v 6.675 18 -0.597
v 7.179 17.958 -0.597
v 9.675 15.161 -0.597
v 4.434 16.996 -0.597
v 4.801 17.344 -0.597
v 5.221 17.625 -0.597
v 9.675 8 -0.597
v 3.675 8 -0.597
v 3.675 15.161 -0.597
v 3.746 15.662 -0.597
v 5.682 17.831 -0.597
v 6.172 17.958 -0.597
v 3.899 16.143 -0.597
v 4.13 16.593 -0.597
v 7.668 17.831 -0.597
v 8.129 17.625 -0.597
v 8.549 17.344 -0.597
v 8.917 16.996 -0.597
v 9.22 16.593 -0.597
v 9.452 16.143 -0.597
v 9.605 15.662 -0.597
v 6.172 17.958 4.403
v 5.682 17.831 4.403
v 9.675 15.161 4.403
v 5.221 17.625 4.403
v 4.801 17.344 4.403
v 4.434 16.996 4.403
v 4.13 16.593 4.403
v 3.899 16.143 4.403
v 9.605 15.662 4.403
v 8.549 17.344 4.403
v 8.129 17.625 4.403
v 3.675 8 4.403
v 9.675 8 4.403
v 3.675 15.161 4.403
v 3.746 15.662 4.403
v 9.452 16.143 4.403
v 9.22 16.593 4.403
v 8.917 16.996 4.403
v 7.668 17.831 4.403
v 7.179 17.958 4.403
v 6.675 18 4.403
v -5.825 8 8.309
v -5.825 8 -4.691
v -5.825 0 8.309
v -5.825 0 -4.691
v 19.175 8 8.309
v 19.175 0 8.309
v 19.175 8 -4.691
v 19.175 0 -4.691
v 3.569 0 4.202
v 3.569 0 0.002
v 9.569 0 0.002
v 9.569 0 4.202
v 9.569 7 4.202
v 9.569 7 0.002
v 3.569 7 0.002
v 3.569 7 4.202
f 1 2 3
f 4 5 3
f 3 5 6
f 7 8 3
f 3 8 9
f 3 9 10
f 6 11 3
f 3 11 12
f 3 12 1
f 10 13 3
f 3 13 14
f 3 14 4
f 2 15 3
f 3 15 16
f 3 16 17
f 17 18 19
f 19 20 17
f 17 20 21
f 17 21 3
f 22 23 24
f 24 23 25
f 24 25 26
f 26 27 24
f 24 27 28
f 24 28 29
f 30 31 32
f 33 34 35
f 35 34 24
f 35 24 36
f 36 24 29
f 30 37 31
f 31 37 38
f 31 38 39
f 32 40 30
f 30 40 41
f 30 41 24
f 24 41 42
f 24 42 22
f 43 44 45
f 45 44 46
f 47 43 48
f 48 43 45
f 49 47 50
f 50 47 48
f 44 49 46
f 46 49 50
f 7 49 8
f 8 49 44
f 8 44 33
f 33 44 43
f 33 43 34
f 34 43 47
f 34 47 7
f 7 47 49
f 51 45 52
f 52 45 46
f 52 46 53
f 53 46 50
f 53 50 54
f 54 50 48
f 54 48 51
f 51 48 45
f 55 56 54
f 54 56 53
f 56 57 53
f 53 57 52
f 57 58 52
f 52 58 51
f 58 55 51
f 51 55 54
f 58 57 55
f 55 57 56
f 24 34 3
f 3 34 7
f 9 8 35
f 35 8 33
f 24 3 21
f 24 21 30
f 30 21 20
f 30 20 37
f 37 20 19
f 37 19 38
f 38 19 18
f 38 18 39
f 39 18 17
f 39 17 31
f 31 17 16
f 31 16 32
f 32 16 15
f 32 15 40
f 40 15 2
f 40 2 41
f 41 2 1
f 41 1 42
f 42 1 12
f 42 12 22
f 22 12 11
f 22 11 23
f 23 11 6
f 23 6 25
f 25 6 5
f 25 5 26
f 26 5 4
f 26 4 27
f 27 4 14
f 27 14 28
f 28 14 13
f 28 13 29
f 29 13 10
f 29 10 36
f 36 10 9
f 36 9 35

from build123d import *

# Parameters (mm, degrees)
SKETCH3_W           = 25
SKETCH3_H           = 13
BOSS_EXTRUDE1_DEPTH = 8
SKETCH4_W           = 6
SKETCH4_H           = 4.2
CUT_EXTRUDE1_DEPTH  = 7
SKETCH5_W           = 6
SKETCH5_H           = 5
BOSS_EXTRUDE2_DEPTH = 10
CUT_EXTRUDE2_DEPTH  = 10


with BuildPart() as part:
    # Sketch3 → Boss-Extrude1 (new body)
    with BuildSketch(Plane(origin=(0, 0, 0), x_dir=(1, 0, 0), z_dir=(0, 1, 0))):
        with Locations((6.675257732, -1.809278351)):
            Rectangle(SKETCH3_W, SKETCH3_H)
    extrude(amount=BOSS_EXTRUDE1_DEPTH)

    # Sketch4 → Cut-Extrude1 (cut)
    with BuildSketch(Plane.XZ):
        with Locations((6.568666205, 2.102026057)):
            Rectangle(SKETCH4_W, SKETCH4_H)
    extrude(amount=-CUT_EXTRUDE1_DEPTH, mode=Mode.SUBTRACT)

    # Sketch5 → Boss-Extrude2 (add)
    with BuildSketch(Plane(origin=(0, 8, 0), x_dir=(1, 0, 0), z_dir=(0, 1, 0))):
        with Locations((6.675257732, -1.902518117)):
            Rectangle(SKETCH5_W, SKETCH5_H)
    extrude(amount=BOSS_EXTRUDE2_DEPTH)

    # Sketch6 → Cut-Extrude2 (cut)
    with BuildSketch(Plane(origin=(0, 0, -0.597481883), x_dir=(-1, 0, 0), z_dir=(0, 0, -1))):
        with BuildLine():
            Line((-3.675257732, 18), (-6.675257732, 18))
            ThreePointArc((-6.675257732, 18), (-4.610198245, 17.177859086), (-3.675257732, 15.161358998))
            Line((-3.675257732, 15.161358998), (-3.675257732, 18))
        make_face()
        with BuildLine():
            Line((-9.675257732, 18), (-9.675257732, 15.161358998))
            ThreePointArc((-9.675257732, 15.161358998), (-8.740317219, 17.177859086), (-6.675257732, 18))
            Line((-6.675257732, 18), (-9.675257732, 18))
        make_face()
    extrude(amount=-CUT_EXTRUDE2_DEPTH, mode=Mode.SUBTRACT)


solid = part.part
